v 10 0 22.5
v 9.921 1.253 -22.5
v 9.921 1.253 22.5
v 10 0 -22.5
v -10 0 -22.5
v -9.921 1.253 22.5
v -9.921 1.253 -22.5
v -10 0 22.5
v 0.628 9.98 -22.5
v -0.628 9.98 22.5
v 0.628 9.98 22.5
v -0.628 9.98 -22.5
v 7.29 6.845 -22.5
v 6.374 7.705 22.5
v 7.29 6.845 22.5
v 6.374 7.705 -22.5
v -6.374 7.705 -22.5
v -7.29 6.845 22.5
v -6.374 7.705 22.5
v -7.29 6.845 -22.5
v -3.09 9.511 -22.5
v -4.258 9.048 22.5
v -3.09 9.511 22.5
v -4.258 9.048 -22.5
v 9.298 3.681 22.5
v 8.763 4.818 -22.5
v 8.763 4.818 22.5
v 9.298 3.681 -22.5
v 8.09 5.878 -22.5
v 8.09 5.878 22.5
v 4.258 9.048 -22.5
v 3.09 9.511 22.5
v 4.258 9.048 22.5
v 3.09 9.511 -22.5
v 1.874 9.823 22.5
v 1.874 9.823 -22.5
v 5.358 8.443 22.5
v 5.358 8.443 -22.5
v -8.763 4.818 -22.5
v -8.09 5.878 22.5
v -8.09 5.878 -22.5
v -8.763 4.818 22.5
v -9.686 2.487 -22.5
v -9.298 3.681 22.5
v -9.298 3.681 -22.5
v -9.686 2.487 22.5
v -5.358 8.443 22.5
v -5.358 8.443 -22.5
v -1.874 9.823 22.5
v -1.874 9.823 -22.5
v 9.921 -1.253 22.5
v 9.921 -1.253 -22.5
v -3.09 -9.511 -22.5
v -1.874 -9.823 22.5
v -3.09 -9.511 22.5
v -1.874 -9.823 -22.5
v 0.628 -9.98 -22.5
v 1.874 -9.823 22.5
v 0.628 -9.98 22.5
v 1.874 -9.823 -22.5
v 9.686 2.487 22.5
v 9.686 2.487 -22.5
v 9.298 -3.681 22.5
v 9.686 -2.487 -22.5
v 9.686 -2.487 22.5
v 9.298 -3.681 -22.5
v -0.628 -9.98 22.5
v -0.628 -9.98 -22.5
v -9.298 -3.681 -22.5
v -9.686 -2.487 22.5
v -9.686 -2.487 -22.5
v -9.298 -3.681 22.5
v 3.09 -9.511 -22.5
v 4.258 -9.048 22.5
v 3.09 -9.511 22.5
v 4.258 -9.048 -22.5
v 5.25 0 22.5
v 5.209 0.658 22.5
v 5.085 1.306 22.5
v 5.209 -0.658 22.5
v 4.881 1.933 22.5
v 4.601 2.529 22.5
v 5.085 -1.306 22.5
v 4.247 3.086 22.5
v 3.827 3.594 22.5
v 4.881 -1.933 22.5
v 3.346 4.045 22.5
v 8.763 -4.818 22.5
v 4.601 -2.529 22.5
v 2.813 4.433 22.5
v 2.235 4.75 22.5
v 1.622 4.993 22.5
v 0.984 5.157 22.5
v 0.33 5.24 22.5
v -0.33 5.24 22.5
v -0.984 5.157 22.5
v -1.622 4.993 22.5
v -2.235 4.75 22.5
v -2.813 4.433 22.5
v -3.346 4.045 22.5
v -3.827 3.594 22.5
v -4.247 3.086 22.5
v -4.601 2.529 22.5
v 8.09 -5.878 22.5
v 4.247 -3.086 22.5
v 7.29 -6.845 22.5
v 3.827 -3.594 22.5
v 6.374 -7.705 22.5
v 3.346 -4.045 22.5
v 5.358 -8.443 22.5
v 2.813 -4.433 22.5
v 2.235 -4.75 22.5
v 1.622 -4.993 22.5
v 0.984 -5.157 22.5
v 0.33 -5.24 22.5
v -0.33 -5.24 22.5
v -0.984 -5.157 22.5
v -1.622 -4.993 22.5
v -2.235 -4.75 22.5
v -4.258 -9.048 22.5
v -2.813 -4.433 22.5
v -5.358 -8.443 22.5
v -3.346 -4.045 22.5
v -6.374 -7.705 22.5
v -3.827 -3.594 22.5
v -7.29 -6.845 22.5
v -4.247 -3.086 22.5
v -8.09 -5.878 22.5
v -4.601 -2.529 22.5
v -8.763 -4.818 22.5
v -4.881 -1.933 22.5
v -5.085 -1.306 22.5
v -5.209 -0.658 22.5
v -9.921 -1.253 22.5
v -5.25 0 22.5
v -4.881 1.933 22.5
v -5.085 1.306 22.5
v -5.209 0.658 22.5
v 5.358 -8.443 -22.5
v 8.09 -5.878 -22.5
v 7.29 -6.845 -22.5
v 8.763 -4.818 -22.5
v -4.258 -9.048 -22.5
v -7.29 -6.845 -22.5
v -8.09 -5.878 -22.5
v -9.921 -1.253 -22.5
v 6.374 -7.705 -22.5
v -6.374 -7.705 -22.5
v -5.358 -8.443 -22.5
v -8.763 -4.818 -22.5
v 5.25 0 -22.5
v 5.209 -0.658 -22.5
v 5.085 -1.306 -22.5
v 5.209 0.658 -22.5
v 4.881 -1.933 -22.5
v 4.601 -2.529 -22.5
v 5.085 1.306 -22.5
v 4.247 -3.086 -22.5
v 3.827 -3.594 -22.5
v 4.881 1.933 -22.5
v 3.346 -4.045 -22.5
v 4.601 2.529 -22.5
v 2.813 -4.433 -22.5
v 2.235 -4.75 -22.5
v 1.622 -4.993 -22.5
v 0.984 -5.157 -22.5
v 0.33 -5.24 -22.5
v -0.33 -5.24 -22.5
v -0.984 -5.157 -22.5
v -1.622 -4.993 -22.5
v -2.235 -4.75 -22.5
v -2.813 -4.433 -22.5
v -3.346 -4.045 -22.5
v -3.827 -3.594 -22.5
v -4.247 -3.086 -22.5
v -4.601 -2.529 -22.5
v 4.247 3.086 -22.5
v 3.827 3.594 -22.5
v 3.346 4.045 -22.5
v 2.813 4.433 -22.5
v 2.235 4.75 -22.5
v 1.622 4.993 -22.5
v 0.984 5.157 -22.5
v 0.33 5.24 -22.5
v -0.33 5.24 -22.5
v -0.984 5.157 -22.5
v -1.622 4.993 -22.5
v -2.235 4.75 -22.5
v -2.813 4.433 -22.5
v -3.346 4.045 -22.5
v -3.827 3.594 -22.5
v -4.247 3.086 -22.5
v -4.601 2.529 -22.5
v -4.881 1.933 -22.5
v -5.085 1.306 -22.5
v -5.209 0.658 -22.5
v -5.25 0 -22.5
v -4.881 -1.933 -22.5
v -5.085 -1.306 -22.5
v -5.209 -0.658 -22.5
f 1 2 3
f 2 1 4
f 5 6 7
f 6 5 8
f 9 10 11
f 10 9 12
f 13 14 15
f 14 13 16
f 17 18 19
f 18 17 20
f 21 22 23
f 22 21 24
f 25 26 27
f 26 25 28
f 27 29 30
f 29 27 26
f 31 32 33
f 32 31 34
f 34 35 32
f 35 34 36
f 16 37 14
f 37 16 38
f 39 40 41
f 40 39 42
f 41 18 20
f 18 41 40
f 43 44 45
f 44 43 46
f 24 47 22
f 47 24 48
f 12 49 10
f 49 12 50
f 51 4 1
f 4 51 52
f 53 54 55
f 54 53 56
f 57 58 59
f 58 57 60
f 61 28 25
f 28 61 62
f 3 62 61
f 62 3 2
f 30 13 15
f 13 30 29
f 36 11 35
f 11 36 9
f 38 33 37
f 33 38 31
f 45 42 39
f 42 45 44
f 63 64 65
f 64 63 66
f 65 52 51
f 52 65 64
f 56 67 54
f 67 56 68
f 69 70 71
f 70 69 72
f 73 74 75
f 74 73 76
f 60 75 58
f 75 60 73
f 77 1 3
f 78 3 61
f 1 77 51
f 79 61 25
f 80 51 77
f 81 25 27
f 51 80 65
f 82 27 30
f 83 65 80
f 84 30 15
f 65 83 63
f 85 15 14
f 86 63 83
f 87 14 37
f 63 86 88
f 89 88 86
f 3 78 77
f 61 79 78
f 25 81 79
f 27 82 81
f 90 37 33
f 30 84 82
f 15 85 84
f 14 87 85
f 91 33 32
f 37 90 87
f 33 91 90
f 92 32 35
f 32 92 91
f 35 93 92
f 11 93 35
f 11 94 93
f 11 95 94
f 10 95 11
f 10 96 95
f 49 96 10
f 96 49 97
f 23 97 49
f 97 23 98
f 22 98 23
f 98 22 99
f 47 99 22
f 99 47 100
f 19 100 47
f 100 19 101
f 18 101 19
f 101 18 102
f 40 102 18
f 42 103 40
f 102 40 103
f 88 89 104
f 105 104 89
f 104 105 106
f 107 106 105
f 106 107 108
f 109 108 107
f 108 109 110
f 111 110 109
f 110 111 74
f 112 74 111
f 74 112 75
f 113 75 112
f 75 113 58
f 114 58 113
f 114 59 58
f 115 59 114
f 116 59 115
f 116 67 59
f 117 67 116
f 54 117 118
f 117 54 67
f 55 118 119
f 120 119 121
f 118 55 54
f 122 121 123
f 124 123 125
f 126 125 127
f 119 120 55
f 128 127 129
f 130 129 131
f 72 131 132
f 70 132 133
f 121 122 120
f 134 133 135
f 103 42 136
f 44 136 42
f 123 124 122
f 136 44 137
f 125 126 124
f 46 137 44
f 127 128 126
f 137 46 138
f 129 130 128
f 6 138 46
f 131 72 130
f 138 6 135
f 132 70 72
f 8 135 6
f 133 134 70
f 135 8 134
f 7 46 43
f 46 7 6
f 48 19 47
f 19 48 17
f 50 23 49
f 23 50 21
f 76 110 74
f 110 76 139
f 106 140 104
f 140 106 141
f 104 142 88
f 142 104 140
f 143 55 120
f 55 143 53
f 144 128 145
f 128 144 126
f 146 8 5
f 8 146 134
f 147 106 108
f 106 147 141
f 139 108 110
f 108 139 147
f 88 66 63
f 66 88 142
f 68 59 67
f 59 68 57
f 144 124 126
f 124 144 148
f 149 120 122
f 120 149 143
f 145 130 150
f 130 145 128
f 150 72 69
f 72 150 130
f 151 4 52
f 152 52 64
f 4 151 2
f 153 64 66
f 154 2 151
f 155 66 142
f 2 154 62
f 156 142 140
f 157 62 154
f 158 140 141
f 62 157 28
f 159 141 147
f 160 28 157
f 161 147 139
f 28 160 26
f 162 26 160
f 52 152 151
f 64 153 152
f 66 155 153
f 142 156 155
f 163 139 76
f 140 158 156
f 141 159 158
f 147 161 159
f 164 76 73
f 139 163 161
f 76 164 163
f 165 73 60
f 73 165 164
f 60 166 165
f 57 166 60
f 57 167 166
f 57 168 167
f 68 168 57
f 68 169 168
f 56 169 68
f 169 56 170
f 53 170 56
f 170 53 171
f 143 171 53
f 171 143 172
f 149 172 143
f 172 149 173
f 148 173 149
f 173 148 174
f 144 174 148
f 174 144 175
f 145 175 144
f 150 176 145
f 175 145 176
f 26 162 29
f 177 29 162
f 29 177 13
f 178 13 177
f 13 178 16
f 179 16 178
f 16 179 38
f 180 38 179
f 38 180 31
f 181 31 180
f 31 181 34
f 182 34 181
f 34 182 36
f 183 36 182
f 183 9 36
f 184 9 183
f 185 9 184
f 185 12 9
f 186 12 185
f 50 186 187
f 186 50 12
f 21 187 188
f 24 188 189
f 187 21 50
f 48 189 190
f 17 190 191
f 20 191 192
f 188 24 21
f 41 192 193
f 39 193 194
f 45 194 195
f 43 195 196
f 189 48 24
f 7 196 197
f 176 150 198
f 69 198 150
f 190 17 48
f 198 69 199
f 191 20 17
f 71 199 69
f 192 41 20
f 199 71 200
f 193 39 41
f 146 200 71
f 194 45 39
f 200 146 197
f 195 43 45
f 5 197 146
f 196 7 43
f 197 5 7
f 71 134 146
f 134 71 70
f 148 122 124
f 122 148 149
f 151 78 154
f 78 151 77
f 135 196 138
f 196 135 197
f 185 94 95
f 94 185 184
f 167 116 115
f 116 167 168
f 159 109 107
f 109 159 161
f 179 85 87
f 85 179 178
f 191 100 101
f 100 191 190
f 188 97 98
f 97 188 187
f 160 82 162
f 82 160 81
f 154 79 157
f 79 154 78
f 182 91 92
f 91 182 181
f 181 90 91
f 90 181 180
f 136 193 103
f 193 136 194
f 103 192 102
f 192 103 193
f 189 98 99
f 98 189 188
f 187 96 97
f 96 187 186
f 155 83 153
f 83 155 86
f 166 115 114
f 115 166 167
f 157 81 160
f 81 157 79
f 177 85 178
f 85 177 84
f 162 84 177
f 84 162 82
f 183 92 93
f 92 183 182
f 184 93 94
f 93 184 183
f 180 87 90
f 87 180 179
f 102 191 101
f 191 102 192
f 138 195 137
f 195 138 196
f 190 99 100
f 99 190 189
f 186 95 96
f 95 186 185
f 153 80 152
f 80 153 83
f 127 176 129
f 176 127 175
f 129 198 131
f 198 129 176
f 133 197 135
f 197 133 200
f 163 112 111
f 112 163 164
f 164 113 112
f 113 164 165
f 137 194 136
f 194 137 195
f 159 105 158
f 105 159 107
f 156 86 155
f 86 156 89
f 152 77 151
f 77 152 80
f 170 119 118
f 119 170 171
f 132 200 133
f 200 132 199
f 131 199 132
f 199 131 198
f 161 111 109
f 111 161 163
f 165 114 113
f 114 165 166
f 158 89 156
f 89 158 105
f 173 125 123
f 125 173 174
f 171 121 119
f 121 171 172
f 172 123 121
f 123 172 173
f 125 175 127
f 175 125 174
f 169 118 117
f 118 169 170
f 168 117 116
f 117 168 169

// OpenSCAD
$fn = 50;


difference() {
	union() {
		translate(v = [0, 0, -22.5000000000]) {
			cylinder(h = 45, r = 10.0000000000);
		}
	}
	union() {
		translate(v = [0, 0, -100.0000000000]) {
			cylinder(h = 200, r = 5.2500000000);
		}
	}
}
